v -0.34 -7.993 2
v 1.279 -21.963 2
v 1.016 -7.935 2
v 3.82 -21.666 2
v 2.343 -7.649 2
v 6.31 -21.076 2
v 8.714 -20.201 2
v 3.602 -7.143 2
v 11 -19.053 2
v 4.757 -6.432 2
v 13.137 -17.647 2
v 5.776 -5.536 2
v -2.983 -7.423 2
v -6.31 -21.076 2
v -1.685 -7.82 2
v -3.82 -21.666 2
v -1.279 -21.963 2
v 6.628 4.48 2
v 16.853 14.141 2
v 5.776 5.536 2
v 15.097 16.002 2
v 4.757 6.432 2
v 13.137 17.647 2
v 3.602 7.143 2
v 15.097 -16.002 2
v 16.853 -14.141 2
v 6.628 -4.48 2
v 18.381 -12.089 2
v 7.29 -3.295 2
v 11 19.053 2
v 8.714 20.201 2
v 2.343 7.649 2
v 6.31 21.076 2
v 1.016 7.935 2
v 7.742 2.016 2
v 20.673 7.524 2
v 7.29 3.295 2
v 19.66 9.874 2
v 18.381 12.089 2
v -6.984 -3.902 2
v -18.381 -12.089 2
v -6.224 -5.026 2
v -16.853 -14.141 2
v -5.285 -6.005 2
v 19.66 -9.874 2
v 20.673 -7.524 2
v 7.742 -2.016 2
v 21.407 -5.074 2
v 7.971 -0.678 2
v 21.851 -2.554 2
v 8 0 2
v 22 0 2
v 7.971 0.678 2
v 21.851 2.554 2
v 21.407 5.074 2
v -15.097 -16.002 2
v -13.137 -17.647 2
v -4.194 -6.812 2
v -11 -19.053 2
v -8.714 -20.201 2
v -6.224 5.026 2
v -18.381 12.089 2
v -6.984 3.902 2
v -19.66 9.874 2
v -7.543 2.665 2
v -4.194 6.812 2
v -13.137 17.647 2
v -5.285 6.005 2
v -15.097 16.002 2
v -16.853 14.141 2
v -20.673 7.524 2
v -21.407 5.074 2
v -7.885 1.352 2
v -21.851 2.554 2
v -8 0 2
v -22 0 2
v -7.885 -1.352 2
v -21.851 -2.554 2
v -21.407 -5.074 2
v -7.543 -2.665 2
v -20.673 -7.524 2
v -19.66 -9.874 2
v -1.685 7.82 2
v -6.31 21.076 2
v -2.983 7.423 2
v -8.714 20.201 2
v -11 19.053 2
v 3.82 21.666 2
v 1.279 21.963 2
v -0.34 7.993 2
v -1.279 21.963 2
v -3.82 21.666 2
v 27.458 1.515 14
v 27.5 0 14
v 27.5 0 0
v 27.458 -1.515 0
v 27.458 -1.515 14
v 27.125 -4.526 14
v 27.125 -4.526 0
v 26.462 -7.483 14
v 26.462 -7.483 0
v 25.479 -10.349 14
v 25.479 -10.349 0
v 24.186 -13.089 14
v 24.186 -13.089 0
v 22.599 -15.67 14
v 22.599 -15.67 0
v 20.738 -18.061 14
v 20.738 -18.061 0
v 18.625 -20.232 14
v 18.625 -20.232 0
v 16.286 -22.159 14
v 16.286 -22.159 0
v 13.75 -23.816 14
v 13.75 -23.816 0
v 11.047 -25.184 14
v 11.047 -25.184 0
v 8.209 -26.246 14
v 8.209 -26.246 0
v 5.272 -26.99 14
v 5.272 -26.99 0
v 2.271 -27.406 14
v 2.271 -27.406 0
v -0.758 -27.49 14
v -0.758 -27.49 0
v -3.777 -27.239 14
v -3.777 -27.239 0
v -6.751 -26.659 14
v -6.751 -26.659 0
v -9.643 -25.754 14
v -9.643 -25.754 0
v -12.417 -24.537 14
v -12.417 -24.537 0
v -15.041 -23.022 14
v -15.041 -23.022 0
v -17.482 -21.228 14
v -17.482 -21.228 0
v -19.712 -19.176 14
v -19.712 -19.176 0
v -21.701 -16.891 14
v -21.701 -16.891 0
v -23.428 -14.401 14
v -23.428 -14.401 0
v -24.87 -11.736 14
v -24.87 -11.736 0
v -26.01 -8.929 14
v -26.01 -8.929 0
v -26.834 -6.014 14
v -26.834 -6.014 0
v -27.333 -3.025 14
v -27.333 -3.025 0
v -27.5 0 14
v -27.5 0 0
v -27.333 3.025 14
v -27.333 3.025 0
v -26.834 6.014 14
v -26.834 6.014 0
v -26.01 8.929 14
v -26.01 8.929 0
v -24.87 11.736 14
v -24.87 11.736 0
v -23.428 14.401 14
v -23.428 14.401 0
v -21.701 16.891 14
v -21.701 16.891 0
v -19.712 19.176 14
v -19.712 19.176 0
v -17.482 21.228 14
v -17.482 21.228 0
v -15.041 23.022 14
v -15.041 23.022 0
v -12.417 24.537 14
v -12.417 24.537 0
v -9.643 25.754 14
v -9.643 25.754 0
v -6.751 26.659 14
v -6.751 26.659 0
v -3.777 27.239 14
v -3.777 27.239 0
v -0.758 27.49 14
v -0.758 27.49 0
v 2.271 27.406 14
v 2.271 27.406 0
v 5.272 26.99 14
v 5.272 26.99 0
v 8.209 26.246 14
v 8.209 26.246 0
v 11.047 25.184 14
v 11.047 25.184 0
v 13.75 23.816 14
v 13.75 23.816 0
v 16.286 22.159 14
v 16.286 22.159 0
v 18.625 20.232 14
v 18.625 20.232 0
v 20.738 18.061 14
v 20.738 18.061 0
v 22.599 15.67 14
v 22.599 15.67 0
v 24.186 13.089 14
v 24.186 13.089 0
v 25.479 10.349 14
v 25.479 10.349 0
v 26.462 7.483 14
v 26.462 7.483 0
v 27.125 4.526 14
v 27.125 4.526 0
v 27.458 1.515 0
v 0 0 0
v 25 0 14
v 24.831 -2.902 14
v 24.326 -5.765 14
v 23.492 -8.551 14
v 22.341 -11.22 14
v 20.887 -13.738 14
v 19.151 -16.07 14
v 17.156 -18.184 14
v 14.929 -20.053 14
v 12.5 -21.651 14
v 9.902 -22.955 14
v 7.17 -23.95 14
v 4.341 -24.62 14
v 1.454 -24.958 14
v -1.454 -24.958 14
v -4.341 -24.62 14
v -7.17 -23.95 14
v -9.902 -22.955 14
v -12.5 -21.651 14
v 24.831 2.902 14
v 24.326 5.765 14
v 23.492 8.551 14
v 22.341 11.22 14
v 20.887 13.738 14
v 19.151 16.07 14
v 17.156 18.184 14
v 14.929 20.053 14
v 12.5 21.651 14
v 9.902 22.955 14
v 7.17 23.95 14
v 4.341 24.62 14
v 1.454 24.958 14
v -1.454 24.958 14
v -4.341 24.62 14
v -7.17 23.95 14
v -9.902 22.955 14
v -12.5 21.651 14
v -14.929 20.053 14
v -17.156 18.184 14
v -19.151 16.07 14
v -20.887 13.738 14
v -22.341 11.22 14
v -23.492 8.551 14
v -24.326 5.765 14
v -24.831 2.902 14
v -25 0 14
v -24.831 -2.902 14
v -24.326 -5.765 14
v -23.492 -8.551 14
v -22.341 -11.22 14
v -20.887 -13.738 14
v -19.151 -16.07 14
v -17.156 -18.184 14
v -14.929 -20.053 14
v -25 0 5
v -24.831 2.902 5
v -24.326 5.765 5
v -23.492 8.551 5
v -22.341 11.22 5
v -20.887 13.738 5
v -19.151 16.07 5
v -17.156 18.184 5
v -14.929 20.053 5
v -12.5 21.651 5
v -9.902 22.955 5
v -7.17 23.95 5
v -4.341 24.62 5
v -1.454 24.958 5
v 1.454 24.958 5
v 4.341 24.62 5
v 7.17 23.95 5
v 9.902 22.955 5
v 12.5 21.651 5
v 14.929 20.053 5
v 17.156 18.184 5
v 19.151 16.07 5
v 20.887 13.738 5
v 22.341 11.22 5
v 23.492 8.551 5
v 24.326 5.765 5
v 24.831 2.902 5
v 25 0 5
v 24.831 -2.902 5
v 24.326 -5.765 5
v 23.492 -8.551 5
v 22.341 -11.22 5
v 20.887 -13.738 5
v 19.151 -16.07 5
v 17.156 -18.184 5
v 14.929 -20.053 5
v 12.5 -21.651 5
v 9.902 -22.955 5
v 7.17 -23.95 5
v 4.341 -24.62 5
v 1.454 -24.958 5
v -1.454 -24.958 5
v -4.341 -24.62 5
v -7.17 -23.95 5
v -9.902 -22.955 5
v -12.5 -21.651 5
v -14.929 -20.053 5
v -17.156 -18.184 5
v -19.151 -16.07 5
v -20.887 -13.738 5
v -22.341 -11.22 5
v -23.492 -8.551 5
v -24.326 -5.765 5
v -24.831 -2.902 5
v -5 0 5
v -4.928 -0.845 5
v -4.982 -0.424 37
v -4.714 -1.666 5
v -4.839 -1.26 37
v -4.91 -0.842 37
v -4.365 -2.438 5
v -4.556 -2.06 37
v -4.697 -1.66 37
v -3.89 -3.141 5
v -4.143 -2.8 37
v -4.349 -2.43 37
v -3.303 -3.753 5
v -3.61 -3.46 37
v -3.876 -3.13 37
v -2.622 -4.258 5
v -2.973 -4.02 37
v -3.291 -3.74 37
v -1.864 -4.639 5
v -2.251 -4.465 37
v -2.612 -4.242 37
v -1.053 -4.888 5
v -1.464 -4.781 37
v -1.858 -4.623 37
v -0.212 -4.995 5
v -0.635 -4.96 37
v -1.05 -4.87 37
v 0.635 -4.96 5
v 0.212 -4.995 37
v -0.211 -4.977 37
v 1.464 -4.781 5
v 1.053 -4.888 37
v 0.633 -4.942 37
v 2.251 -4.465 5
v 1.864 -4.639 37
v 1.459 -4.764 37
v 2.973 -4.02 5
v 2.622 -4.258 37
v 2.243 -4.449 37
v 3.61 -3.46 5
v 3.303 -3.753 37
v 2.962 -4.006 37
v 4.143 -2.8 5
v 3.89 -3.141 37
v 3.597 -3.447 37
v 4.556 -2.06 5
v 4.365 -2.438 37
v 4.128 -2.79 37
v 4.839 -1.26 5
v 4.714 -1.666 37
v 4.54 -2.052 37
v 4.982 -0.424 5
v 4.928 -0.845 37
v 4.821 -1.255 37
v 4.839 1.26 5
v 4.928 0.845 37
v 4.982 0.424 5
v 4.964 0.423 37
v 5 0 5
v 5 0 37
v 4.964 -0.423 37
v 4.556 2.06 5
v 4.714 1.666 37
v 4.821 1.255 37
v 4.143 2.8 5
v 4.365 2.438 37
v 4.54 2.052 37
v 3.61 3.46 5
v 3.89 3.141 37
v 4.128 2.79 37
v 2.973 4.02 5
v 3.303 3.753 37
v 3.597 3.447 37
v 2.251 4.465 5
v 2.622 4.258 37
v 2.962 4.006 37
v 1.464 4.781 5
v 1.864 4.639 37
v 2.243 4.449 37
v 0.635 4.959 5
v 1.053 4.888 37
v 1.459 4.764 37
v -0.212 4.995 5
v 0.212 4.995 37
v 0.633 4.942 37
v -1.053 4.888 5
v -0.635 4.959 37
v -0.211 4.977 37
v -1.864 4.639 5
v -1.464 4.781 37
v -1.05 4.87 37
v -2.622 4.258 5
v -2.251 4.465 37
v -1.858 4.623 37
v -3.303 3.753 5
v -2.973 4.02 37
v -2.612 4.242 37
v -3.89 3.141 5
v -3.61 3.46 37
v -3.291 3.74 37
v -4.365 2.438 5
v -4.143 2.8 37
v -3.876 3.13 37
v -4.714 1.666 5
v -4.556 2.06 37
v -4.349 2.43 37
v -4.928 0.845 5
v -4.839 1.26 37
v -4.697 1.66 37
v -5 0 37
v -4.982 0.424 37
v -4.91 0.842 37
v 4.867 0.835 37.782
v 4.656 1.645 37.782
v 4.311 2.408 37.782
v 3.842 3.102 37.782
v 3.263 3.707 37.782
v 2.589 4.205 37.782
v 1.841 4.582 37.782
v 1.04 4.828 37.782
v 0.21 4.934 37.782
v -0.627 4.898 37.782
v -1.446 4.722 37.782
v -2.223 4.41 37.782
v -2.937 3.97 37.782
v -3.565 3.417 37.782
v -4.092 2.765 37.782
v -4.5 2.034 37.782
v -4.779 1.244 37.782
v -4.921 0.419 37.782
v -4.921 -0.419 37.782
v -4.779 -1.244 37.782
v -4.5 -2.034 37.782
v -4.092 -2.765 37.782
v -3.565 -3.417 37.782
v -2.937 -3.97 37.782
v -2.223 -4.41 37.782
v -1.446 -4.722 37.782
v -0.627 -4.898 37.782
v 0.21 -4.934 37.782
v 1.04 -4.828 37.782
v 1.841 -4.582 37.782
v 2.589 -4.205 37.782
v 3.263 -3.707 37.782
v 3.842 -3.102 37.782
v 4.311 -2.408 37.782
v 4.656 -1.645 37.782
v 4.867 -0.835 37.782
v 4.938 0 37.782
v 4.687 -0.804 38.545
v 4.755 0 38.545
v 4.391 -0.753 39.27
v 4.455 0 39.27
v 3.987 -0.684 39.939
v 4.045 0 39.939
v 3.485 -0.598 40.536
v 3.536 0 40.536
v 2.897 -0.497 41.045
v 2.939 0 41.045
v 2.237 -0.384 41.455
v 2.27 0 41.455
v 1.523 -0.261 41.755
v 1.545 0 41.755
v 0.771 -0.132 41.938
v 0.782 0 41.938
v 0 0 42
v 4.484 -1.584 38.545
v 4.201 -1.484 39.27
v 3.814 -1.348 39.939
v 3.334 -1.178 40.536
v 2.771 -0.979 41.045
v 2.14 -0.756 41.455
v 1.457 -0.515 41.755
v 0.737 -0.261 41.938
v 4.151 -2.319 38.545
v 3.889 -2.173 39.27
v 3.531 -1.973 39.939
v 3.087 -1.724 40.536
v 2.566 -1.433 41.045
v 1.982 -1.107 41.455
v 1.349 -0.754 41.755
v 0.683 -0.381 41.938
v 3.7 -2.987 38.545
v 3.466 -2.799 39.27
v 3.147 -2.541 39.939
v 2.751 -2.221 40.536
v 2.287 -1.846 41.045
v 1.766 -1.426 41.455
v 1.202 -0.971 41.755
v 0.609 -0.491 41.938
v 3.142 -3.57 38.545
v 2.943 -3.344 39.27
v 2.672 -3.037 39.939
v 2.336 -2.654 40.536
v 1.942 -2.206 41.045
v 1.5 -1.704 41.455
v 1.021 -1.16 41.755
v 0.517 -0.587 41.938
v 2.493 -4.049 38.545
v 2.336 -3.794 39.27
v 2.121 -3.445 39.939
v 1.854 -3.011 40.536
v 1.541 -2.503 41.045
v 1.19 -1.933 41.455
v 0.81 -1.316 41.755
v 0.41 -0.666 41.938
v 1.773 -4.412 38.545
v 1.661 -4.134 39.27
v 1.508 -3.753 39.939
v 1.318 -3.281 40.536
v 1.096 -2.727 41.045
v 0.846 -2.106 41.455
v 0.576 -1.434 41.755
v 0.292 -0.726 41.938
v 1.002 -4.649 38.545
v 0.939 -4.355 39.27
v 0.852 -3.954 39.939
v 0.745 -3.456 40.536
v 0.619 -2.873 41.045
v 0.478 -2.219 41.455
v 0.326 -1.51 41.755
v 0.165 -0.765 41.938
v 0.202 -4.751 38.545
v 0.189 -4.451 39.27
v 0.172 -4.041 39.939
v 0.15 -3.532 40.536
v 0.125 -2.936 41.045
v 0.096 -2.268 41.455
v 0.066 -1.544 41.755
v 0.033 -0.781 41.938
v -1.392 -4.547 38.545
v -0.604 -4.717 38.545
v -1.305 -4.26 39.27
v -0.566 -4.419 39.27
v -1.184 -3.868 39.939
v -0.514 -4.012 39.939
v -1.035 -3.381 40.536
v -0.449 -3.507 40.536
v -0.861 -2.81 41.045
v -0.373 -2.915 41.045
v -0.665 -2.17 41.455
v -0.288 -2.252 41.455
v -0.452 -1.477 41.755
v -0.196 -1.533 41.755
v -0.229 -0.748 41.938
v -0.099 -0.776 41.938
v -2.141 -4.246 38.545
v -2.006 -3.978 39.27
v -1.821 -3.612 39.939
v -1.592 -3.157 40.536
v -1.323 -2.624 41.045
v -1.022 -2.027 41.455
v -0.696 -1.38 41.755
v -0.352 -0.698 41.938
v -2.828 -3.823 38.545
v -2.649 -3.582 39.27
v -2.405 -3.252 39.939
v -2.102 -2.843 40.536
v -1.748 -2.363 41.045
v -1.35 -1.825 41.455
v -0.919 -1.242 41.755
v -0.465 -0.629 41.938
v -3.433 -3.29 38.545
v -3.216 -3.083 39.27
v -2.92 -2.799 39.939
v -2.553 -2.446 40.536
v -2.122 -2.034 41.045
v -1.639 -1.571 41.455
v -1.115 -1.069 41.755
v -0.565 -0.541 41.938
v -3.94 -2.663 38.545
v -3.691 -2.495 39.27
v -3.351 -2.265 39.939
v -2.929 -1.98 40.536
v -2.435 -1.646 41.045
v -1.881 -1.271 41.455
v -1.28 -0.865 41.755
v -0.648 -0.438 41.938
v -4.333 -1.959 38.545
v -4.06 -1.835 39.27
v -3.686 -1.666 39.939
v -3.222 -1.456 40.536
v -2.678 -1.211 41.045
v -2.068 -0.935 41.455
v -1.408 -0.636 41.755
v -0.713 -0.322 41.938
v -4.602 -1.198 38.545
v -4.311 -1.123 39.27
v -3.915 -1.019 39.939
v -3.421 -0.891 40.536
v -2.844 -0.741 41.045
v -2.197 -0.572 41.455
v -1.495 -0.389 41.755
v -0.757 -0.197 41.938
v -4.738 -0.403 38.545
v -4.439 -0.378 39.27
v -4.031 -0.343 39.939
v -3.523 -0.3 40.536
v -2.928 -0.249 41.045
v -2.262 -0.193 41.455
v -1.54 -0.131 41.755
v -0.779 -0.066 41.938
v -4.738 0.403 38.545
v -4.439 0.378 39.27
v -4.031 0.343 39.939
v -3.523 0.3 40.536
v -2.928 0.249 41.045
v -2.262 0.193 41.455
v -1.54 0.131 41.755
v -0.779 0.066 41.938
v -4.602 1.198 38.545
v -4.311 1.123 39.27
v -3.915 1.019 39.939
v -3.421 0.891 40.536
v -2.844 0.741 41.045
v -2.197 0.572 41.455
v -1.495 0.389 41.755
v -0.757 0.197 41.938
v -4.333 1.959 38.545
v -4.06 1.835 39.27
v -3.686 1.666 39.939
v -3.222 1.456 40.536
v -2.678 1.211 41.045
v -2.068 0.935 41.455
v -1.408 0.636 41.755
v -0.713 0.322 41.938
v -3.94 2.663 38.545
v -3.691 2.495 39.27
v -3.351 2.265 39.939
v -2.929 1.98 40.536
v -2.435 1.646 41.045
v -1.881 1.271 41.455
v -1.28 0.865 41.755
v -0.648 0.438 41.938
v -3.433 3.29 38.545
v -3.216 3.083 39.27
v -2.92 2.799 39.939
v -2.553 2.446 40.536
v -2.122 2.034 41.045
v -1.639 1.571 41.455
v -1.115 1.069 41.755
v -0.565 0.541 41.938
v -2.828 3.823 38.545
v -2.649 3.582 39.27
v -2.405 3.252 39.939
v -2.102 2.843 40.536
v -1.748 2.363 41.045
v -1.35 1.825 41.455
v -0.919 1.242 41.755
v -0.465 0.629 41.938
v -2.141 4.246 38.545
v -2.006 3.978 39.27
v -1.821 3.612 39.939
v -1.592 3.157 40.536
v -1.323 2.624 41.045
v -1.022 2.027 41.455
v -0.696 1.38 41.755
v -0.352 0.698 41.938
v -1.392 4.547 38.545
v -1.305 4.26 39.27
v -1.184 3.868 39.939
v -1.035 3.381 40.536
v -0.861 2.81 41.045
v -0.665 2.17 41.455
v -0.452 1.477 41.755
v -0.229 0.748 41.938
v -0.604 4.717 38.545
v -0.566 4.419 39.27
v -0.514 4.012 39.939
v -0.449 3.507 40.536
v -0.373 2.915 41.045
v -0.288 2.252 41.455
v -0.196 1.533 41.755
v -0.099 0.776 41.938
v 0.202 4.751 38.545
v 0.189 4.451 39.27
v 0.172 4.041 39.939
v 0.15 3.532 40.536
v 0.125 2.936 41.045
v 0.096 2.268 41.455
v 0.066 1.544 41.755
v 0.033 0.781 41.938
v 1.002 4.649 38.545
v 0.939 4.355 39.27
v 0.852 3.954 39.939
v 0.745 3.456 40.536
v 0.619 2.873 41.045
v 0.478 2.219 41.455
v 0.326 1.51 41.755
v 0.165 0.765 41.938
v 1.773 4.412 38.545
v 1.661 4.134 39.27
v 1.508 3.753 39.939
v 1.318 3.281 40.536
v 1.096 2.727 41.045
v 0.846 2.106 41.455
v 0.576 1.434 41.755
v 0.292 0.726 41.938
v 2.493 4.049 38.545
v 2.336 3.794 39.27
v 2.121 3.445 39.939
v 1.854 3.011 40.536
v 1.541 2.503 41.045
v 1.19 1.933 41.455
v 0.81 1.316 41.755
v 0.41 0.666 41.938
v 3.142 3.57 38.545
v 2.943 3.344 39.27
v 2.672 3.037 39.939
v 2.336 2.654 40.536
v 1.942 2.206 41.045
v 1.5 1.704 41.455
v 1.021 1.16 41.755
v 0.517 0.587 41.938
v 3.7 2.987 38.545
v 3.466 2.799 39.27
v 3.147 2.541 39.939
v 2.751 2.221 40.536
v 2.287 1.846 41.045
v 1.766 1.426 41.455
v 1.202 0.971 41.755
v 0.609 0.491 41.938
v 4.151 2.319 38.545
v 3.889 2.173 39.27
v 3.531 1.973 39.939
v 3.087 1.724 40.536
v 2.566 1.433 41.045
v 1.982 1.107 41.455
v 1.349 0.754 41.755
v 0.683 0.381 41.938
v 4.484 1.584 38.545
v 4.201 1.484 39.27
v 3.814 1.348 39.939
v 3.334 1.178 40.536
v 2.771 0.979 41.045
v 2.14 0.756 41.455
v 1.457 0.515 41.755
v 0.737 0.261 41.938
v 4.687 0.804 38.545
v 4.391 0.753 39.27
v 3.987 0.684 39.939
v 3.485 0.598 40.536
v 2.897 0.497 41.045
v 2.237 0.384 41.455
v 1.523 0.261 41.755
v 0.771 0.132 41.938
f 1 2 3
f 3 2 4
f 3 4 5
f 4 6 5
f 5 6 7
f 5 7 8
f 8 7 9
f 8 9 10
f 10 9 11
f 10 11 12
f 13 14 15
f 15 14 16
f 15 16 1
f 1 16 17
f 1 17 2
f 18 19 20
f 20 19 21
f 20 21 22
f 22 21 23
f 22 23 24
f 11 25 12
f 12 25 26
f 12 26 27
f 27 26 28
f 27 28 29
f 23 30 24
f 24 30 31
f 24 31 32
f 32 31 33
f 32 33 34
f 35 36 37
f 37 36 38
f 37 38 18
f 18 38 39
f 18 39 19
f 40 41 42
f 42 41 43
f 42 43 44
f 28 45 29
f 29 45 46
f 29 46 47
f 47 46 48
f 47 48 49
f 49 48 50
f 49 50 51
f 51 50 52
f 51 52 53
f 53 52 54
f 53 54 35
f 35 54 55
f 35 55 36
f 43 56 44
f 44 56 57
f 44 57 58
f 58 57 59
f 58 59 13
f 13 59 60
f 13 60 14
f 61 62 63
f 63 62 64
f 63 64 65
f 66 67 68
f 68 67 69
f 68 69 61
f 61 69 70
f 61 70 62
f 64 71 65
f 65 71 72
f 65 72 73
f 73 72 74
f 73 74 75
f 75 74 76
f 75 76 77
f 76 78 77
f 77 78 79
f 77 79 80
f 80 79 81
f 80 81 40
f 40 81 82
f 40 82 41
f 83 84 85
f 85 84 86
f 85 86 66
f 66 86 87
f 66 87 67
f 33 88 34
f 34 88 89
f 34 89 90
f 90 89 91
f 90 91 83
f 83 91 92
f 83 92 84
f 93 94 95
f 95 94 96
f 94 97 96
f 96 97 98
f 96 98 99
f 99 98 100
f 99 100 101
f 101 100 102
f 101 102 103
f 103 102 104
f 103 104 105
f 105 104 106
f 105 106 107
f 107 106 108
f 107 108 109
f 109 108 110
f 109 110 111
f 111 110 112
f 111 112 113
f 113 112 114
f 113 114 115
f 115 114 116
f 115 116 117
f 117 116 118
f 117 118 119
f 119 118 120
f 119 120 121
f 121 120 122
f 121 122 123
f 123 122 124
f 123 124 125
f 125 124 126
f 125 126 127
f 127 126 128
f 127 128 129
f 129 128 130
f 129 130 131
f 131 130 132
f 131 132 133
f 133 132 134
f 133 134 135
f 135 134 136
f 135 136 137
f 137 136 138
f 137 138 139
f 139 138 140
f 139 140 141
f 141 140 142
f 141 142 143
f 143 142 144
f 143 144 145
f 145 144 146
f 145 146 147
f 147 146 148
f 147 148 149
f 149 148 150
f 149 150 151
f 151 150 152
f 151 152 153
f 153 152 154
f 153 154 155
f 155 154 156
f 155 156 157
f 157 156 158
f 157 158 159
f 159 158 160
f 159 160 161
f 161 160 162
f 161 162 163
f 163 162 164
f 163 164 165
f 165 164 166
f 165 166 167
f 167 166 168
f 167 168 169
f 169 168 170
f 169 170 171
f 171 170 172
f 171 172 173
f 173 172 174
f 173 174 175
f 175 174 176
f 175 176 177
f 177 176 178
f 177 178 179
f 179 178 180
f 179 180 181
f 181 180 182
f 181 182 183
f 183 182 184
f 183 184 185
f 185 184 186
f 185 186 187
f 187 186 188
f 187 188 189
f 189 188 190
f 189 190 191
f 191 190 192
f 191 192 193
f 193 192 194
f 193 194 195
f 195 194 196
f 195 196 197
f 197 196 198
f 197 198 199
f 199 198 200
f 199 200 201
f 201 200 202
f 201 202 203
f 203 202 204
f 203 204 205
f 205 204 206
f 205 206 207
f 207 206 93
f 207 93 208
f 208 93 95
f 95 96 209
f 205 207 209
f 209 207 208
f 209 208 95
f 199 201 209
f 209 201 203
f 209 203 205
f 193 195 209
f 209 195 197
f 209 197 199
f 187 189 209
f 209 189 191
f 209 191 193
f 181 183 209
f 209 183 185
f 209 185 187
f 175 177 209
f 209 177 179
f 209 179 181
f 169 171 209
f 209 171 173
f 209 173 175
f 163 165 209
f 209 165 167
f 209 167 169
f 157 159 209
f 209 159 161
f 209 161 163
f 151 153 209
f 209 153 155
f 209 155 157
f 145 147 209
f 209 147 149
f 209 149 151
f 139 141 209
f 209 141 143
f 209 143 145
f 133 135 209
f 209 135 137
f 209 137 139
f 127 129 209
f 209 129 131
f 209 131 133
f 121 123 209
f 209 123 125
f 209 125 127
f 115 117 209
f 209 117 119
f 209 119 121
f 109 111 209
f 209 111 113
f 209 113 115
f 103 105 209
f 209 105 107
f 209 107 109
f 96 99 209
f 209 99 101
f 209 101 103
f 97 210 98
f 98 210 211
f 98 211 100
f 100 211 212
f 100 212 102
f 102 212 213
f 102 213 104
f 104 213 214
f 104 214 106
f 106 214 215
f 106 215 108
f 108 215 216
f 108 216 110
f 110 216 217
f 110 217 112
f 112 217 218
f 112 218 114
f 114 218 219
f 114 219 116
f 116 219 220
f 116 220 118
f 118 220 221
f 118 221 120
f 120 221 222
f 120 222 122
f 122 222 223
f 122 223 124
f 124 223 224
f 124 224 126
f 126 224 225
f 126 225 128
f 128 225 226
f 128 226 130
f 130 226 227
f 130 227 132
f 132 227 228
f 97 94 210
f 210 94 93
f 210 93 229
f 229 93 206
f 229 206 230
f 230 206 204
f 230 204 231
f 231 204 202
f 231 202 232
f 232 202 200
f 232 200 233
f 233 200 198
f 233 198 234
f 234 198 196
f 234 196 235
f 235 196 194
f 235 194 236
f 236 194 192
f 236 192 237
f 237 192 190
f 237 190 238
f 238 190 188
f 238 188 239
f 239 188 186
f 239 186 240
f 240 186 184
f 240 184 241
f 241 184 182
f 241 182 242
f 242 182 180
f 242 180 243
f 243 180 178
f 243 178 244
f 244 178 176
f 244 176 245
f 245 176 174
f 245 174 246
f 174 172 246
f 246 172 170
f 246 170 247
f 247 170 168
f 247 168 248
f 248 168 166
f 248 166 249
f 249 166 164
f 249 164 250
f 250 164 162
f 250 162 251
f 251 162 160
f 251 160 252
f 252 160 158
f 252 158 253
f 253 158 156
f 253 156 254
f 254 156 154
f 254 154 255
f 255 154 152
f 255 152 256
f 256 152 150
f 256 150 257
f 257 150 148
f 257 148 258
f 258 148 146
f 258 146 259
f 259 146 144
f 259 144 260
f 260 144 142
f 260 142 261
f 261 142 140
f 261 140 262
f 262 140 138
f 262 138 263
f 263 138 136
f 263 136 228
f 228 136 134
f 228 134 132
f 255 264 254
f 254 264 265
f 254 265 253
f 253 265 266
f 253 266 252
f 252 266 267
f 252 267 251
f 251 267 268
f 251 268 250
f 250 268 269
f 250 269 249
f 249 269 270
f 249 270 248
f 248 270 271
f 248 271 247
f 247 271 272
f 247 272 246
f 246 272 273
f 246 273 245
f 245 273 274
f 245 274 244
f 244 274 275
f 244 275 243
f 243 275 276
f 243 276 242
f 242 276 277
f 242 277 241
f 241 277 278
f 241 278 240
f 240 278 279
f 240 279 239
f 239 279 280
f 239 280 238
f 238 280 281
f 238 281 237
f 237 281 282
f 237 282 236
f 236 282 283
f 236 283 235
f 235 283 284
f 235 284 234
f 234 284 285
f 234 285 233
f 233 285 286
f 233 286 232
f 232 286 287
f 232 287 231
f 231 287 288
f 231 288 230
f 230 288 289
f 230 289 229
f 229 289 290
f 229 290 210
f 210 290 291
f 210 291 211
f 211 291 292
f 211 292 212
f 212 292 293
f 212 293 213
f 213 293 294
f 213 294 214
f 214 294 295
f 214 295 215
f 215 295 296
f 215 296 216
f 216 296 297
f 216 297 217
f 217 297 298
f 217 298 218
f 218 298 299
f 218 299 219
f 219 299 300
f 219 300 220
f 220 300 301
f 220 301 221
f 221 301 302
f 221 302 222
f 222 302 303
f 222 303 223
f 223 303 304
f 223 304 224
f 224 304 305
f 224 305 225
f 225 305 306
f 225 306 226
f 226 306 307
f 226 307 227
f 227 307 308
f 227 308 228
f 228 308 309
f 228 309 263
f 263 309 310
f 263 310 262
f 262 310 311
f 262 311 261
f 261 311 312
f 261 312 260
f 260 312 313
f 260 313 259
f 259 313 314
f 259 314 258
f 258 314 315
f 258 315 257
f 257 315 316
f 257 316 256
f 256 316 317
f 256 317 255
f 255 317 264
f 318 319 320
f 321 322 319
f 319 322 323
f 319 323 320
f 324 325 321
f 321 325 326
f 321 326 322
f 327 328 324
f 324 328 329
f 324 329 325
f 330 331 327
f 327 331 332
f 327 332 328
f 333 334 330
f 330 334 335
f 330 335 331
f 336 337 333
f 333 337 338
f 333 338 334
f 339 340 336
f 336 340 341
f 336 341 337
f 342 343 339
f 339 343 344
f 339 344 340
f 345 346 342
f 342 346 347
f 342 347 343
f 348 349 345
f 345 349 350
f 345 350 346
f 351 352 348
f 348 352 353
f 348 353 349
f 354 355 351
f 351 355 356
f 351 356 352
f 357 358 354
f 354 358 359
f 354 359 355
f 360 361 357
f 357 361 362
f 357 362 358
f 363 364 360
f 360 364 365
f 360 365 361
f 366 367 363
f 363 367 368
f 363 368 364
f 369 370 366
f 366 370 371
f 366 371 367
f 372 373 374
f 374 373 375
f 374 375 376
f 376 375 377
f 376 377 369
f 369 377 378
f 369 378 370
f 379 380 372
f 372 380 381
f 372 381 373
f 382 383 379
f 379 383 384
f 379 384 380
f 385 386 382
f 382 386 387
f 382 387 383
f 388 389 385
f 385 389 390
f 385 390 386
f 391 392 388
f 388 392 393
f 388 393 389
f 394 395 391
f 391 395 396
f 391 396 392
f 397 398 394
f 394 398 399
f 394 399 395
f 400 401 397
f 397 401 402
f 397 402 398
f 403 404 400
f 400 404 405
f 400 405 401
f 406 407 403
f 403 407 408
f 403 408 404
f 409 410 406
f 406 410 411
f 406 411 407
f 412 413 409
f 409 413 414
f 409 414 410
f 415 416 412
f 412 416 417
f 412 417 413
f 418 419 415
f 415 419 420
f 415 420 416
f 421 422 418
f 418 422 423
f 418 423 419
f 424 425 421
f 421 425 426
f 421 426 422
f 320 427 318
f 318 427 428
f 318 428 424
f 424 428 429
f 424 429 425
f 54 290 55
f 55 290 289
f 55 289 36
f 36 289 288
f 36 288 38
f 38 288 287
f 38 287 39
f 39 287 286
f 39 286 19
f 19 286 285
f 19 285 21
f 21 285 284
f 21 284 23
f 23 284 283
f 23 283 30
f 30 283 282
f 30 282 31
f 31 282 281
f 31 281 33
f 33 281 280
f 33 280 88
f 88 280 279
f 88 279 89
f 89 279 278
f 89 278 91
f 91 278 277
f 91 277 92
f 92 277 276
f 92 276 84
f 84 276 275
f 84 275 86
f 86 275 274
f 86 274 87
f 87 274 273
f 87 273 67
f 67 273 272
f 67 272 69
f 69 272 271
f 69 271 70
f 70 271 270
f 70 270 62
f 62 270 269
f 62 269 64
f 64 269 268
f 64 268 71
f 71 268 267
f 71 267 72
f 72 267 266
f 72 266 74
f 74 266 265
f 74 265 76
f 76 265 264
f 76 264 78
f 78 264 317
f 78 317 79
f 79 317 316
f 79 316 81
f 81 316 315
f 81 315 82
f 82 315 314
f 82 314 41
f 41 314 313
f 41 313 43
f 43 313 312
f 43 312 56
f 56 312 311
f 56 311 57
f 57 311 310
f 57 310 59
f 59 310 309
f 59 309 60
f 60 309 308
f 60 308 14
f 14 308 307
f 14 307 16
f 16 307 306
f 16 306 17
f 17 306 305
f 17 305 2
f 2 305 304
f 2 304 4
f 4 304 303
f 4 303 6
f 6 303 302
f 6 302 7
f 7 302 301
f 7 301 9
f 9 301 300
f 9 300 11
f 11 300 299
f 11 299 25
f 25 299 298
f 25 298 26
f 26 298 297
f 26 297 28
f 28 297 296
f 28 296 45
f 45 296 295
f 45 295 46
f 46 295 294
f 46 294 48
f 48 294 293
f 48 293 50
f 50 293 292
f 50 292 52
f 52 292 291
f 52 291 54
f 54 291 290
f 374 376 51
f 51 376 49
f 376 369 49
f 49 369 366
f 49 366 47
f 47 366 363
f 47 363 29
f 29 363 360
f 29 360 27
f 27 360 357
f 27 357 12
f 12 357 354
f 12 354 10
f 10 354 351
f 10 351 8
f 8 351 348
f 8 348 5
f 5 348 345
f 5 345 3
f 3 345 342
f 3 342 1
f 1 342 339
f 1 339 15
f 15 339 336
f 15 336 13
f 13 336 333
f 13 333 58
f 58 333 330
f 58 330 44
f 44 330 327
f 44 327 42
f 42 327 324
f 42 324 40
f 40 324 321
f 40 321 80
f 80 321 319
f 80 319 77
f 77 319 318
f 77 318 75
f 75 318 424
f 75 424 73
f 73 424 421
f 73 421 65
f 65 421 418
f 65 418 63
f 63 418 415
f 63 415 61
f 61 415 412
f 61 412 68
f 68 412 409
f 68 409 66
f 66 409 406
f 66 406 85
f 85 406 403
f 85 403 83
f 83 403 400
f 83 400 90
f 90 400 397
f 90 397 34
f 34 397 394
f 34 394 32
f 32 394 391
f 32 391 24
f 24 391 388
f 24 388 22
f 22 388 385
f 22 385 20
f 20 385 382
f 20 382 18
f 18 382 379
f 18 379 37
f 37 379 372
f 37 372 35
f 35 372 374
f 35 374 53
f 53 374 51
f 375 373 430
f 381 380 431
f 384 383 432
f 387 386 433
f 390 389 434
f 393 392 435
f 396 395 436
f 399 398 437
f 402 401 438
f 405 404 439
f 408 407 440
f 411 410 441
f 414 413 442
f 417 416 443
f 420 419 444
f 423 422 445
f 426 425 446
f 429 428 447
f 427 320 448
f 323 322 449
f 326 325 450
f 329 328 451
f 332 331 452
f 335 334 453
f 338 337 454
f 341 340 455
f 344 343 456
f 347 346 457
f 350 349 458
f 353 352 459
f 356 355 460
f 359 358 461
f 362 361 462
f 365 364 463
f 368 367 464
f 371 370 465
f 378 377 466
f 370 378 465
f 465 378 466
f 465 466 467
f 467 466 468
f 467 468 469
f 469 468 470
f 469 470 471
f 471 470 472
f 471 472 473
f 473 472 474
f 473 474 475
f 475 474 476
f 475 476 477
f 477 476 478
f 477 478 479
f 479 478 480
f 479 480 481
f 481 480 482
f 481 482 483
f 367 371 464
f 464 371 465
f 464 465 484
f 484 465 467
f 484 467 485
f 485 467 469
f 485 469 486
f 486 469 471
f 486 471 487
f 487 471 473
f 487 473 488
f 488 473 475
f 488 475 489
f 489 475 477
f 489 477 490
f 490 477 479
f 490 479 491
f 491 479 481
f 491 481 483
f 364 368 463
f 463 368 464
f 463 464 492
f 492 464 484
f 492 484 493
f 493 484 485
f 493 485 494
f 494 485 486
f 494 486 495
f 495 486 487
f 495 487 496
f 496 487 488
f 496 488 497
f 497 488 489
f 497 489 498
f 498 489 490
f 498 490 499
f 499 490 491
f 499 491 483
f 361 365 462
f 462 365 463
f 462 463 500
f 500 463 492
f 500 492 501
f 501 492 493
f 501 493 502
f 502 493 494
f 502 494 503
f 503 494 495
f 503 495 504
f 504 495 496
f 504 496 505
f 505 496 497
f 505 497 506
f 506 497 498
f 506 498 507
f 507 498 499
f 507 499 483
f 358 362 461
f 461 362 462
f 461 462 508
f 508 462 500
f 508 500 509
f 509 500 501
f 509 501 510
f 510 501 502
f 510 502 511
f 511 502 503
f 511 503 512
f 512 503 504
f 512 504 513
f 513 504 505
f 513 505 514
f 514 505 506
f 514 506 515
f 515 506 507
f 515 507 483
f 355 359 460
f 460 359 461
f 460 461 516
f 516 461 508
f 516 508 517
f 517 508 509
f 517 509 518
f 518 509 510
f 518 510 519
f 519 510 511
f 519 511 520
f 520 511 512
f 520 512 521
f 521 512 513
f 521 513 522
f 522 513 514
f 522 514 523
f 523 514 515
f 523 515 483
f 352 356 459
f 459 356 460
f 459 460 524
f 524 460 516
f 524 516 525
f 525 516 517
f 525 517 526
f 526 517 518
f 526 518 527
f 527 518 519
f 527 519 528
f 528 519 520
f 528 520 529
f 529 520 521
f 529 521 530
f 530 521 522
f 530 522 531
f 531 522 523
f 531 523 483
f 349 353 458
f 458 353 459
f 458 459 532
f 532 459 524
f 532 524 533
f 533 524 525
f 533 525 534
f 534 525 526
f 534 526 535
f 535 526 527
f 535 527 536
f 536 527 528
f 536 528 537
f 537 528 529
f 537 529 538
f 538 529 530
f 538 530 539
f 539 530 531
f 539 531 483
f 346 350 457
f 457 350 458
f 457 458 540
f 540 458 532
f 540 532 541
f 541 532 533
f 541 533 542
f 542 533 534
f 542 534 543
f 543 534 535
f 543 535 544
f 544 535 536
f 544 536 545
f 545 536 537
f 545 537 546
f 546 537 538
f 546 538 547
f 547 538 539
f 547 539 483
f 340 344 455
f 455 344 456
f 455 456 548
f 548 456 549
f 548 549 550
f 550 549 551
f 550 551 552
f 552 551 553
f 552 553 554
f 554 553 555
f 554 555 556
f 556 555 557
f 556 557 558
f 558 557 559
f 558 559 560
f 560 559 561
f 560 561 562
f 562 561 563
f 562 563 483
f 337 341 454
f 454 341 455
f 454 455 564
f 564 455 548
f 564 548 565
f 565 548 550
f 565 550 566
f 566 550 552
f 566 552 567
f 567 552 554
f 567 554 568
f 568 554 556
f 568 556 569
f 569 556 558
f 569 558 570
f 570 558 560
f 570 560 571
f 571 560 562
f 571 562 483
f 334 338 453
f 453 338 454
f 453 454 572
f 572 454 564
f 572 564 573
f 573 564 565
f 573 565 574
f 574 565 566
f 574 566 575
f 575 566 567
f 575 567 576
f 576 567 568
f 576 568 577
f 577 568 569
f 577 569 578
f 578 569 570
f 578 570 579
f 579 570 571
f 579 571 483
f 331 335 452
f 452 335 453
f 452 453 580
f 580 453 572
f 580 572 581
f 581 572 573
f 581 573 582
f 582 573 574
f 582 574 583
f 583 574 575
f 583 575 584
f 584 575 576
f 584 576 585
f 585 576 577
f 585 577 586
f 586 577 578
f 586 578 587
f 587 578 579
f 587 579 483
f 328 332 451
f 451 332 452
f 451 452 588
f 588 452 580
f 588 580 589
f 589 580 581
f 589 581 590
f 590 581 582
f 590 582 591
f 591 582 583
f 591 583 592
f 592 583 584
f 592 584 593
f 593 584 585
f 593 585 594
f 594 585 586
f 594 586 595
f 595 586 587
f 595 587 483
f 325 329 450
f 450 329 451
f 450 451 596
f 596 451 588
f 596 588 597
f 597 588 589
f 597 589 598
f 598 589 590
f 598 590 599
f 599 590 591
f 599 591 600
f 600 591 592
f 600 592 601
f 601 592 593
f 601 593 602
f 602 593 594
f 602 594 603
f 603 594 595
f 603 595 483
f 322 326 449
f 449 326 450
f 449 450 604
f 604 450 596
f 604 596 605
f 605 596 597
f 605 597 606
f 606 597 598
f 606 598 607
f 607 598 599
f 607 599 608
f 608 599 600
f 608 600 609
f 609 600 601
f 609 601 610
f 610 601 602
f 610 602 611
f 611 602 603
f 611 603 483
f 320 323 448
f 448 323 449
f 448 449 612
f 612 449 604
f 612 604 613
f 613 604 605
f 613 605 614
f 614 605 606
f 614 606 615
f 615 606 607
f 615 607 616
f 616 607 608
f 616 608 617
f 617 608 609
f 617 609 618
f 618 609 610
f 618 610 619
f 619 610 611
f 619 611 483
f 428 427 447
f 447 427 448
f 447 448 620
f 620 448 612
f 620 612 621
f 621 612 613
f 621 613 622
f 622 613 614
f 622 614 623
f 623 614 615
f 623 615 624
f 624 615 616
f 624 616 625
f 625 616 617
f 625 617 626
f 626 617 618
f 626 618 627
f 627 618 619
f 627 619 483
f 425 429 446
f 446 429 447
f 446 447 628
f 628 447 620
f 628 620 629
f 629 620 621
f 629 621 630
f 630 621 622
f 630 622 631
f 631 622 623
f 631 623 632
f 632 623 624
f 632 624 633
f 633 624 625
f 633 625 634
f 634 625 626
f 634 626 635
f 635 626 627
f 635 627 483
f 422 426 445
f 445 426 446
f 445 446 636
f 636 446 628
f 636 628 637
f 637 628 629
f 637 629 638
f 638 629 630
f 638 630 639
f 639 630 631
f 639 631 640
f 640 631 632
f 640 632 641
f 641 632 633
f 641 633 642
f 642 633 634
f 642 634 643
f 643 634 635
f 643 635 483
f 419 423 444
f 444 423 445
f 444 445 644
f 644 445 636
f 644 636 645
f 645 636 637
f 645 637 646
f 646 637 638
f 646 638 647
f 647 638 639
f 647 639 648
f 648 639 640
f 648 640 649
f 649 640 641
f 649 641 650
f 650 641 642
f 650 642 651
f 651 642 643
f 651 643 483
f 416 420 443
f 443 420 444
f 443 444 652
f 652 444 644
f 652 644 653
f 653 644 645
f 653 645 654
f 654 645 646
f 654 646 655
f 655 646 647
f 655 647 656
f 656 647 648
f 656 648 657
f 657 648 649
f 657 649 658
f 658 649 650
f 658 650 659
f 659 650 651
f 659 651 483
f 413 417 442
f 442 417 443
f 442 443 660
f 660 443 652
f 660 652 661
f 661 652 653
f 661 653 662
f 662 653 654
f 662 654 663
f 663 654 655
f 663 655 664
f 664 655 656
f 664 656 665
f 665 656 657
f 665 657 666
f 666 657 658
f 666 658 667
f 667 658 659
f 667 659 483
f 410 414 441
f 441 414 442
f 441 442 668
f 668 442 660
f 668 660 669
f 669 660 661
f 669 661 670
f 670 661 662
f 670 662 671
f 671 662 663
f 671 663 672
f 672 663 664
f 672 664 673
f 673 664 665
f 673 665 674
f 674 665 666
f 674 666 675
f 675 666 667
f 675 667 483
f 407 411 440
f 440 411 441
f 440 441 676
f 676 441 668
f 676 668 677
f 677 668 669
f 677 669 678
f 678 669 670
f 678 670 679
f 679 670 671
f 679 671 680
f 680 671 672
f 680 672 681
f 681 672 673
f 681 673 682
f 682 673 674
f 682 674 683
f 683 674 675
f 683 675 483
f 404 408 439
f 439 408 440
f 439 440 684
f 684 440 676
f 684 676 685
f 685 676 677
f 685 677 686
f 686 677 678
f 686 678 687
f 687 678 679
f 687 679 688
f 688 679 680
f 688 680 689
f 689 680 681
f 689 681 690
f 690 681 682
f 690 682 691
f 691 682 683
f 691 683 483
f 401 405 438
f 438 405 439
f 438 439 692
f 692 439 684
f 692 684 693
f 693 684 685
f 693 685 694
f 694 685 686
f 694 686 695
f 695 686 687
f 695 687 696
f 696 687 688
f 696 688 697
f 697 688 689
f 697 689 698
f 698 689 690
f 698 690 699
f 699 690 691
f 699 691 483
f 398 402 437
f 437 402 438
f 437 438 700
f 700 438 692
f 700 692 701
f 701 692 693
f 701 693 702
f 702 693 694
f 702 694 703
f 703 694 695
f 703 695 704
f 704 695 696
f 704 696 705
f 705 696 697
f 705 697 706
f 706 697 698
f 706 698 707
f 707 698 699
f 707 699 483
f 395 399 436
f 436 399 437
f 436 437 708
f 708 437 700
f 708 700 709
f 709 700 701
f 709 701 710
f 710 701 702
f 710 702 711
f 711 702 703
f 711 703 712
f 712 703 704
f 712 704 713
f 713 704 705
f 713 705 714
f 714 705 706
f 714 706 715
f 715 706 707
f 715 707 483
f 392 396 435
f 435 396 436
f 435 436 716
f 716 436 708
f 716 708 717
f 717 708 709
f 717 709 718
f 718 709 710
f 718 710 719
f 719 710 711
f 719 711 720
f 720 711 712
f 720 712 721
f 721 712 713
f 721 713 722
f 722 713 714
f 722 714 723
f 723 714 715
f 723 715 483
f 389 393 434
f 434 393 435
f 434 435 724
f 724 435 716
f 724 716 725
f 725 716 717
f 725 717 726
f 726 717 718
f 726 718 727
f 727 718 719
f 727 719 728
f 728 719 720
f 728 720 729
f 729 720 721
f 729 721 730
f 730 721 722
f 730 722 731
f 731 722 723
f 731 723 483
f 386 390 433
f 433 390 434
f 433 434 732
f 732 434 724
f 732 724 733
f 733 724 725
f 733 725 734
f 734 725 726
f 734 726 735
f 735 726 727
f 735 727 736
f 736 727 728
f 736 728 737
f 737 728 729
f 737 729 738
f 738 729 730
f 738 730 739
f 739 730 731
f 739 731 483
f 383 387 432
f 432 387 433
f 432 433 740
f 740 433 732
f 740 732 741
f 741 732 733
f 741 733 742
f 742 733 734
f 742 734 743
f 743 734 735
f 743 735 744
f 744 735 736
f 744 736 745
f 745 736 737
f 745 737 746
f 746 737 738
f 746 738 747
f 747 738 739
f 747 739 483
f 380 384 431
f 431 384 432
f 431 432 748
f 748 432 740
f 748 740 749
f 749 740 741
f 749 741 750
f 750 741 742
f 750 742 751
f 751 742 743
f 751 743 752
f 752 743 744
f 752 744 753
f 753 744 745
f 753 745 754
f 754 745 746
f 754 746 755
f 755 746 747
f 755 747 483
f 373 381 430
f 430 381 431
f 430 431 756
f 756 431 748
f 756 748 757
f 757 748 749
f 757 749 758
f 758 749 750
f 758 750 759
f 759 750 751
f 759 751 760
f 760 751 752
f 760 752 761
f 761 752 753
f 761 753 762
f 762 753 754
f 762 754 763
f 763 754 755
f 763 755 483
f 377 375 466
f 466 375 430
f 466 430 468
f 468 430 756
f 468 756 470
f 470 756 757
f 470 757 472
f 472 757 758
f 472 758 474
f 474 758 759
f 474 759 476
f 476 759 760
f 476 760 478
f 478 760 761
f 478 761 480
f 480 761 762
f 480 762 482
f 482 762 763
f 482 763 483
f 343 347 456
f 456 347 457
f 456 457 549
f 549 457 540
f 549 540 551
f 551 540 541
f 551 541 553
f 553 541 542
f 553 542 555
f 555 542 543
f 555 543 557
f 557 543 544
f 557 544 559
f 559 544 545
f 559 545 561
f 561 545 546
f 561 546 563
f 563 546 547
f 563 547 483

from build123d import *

# Parameters (mm, degrees)
SKETCH_1_R      = 27.5
EXTRUDE_1_DEPTH = 2
SKETCH_2_R      = 27.5
SKETCH_2_R_2    = 25
EXTRUDE_2_DEPTH = 12
SKETCH_3_R      = 5
EXTRUDE_3_DEPTH = 40
CHAMFER_2_SIZE  = 3
CHAMFER_3_SIZE  = 3
FILLET_3_R      = 5


with BuildPart() as part:
    # 草图1 → 凸台-拉伸1 (new body)
    with BuildSketch(Plane.XY):
        Circle(SKETCH_1_R)
    extrude(amount=EXTRUDE_1_DEPTH)

    # 草图2 → 凸台-拉伸2 (add)
    with BuildSketch(Plane.XY.offset(2)):
        Circle(SKETCH_2_R)
        Circle(SKETCH_2_R_2, mode=Mode.SUBTRACT)
    extrude(amount=EXTRUDE_2_DEPTH)

    # 草图3 → 凸台-拉伸3 (add)
    with BuildSketch(Plane.XY.offset(2)):
        Circle(SKETCH_3_R)
    extrude(amount=EXTRUDE_3_DEPTH)

    # 倒角2
    chamfer_2_edges = [part.edges().sort_by_distance(p)[0] for p in [
        (-25, 0, 2),
    ]]
    chamfer(chamfer_2_edges, length=CHAMFER_2_SIZE)

    # 倒角3
    chamfer_3_edges = [part.edges().sort_by_distance(p)[0] for p in [
        (-5, 0, 2),
    ]]
    chamfer(chamfer_3_edges, length=CHAMFER_3_SIZE)

    # 圆角3
    fillet_3_edges = [part.edges().sort_by_distance(p)[0] for p in [
        (-5, 0, 42),
    ]]
    fillet(fillet_3_edges, radius=FILLET_3_R)


solid = part.part
